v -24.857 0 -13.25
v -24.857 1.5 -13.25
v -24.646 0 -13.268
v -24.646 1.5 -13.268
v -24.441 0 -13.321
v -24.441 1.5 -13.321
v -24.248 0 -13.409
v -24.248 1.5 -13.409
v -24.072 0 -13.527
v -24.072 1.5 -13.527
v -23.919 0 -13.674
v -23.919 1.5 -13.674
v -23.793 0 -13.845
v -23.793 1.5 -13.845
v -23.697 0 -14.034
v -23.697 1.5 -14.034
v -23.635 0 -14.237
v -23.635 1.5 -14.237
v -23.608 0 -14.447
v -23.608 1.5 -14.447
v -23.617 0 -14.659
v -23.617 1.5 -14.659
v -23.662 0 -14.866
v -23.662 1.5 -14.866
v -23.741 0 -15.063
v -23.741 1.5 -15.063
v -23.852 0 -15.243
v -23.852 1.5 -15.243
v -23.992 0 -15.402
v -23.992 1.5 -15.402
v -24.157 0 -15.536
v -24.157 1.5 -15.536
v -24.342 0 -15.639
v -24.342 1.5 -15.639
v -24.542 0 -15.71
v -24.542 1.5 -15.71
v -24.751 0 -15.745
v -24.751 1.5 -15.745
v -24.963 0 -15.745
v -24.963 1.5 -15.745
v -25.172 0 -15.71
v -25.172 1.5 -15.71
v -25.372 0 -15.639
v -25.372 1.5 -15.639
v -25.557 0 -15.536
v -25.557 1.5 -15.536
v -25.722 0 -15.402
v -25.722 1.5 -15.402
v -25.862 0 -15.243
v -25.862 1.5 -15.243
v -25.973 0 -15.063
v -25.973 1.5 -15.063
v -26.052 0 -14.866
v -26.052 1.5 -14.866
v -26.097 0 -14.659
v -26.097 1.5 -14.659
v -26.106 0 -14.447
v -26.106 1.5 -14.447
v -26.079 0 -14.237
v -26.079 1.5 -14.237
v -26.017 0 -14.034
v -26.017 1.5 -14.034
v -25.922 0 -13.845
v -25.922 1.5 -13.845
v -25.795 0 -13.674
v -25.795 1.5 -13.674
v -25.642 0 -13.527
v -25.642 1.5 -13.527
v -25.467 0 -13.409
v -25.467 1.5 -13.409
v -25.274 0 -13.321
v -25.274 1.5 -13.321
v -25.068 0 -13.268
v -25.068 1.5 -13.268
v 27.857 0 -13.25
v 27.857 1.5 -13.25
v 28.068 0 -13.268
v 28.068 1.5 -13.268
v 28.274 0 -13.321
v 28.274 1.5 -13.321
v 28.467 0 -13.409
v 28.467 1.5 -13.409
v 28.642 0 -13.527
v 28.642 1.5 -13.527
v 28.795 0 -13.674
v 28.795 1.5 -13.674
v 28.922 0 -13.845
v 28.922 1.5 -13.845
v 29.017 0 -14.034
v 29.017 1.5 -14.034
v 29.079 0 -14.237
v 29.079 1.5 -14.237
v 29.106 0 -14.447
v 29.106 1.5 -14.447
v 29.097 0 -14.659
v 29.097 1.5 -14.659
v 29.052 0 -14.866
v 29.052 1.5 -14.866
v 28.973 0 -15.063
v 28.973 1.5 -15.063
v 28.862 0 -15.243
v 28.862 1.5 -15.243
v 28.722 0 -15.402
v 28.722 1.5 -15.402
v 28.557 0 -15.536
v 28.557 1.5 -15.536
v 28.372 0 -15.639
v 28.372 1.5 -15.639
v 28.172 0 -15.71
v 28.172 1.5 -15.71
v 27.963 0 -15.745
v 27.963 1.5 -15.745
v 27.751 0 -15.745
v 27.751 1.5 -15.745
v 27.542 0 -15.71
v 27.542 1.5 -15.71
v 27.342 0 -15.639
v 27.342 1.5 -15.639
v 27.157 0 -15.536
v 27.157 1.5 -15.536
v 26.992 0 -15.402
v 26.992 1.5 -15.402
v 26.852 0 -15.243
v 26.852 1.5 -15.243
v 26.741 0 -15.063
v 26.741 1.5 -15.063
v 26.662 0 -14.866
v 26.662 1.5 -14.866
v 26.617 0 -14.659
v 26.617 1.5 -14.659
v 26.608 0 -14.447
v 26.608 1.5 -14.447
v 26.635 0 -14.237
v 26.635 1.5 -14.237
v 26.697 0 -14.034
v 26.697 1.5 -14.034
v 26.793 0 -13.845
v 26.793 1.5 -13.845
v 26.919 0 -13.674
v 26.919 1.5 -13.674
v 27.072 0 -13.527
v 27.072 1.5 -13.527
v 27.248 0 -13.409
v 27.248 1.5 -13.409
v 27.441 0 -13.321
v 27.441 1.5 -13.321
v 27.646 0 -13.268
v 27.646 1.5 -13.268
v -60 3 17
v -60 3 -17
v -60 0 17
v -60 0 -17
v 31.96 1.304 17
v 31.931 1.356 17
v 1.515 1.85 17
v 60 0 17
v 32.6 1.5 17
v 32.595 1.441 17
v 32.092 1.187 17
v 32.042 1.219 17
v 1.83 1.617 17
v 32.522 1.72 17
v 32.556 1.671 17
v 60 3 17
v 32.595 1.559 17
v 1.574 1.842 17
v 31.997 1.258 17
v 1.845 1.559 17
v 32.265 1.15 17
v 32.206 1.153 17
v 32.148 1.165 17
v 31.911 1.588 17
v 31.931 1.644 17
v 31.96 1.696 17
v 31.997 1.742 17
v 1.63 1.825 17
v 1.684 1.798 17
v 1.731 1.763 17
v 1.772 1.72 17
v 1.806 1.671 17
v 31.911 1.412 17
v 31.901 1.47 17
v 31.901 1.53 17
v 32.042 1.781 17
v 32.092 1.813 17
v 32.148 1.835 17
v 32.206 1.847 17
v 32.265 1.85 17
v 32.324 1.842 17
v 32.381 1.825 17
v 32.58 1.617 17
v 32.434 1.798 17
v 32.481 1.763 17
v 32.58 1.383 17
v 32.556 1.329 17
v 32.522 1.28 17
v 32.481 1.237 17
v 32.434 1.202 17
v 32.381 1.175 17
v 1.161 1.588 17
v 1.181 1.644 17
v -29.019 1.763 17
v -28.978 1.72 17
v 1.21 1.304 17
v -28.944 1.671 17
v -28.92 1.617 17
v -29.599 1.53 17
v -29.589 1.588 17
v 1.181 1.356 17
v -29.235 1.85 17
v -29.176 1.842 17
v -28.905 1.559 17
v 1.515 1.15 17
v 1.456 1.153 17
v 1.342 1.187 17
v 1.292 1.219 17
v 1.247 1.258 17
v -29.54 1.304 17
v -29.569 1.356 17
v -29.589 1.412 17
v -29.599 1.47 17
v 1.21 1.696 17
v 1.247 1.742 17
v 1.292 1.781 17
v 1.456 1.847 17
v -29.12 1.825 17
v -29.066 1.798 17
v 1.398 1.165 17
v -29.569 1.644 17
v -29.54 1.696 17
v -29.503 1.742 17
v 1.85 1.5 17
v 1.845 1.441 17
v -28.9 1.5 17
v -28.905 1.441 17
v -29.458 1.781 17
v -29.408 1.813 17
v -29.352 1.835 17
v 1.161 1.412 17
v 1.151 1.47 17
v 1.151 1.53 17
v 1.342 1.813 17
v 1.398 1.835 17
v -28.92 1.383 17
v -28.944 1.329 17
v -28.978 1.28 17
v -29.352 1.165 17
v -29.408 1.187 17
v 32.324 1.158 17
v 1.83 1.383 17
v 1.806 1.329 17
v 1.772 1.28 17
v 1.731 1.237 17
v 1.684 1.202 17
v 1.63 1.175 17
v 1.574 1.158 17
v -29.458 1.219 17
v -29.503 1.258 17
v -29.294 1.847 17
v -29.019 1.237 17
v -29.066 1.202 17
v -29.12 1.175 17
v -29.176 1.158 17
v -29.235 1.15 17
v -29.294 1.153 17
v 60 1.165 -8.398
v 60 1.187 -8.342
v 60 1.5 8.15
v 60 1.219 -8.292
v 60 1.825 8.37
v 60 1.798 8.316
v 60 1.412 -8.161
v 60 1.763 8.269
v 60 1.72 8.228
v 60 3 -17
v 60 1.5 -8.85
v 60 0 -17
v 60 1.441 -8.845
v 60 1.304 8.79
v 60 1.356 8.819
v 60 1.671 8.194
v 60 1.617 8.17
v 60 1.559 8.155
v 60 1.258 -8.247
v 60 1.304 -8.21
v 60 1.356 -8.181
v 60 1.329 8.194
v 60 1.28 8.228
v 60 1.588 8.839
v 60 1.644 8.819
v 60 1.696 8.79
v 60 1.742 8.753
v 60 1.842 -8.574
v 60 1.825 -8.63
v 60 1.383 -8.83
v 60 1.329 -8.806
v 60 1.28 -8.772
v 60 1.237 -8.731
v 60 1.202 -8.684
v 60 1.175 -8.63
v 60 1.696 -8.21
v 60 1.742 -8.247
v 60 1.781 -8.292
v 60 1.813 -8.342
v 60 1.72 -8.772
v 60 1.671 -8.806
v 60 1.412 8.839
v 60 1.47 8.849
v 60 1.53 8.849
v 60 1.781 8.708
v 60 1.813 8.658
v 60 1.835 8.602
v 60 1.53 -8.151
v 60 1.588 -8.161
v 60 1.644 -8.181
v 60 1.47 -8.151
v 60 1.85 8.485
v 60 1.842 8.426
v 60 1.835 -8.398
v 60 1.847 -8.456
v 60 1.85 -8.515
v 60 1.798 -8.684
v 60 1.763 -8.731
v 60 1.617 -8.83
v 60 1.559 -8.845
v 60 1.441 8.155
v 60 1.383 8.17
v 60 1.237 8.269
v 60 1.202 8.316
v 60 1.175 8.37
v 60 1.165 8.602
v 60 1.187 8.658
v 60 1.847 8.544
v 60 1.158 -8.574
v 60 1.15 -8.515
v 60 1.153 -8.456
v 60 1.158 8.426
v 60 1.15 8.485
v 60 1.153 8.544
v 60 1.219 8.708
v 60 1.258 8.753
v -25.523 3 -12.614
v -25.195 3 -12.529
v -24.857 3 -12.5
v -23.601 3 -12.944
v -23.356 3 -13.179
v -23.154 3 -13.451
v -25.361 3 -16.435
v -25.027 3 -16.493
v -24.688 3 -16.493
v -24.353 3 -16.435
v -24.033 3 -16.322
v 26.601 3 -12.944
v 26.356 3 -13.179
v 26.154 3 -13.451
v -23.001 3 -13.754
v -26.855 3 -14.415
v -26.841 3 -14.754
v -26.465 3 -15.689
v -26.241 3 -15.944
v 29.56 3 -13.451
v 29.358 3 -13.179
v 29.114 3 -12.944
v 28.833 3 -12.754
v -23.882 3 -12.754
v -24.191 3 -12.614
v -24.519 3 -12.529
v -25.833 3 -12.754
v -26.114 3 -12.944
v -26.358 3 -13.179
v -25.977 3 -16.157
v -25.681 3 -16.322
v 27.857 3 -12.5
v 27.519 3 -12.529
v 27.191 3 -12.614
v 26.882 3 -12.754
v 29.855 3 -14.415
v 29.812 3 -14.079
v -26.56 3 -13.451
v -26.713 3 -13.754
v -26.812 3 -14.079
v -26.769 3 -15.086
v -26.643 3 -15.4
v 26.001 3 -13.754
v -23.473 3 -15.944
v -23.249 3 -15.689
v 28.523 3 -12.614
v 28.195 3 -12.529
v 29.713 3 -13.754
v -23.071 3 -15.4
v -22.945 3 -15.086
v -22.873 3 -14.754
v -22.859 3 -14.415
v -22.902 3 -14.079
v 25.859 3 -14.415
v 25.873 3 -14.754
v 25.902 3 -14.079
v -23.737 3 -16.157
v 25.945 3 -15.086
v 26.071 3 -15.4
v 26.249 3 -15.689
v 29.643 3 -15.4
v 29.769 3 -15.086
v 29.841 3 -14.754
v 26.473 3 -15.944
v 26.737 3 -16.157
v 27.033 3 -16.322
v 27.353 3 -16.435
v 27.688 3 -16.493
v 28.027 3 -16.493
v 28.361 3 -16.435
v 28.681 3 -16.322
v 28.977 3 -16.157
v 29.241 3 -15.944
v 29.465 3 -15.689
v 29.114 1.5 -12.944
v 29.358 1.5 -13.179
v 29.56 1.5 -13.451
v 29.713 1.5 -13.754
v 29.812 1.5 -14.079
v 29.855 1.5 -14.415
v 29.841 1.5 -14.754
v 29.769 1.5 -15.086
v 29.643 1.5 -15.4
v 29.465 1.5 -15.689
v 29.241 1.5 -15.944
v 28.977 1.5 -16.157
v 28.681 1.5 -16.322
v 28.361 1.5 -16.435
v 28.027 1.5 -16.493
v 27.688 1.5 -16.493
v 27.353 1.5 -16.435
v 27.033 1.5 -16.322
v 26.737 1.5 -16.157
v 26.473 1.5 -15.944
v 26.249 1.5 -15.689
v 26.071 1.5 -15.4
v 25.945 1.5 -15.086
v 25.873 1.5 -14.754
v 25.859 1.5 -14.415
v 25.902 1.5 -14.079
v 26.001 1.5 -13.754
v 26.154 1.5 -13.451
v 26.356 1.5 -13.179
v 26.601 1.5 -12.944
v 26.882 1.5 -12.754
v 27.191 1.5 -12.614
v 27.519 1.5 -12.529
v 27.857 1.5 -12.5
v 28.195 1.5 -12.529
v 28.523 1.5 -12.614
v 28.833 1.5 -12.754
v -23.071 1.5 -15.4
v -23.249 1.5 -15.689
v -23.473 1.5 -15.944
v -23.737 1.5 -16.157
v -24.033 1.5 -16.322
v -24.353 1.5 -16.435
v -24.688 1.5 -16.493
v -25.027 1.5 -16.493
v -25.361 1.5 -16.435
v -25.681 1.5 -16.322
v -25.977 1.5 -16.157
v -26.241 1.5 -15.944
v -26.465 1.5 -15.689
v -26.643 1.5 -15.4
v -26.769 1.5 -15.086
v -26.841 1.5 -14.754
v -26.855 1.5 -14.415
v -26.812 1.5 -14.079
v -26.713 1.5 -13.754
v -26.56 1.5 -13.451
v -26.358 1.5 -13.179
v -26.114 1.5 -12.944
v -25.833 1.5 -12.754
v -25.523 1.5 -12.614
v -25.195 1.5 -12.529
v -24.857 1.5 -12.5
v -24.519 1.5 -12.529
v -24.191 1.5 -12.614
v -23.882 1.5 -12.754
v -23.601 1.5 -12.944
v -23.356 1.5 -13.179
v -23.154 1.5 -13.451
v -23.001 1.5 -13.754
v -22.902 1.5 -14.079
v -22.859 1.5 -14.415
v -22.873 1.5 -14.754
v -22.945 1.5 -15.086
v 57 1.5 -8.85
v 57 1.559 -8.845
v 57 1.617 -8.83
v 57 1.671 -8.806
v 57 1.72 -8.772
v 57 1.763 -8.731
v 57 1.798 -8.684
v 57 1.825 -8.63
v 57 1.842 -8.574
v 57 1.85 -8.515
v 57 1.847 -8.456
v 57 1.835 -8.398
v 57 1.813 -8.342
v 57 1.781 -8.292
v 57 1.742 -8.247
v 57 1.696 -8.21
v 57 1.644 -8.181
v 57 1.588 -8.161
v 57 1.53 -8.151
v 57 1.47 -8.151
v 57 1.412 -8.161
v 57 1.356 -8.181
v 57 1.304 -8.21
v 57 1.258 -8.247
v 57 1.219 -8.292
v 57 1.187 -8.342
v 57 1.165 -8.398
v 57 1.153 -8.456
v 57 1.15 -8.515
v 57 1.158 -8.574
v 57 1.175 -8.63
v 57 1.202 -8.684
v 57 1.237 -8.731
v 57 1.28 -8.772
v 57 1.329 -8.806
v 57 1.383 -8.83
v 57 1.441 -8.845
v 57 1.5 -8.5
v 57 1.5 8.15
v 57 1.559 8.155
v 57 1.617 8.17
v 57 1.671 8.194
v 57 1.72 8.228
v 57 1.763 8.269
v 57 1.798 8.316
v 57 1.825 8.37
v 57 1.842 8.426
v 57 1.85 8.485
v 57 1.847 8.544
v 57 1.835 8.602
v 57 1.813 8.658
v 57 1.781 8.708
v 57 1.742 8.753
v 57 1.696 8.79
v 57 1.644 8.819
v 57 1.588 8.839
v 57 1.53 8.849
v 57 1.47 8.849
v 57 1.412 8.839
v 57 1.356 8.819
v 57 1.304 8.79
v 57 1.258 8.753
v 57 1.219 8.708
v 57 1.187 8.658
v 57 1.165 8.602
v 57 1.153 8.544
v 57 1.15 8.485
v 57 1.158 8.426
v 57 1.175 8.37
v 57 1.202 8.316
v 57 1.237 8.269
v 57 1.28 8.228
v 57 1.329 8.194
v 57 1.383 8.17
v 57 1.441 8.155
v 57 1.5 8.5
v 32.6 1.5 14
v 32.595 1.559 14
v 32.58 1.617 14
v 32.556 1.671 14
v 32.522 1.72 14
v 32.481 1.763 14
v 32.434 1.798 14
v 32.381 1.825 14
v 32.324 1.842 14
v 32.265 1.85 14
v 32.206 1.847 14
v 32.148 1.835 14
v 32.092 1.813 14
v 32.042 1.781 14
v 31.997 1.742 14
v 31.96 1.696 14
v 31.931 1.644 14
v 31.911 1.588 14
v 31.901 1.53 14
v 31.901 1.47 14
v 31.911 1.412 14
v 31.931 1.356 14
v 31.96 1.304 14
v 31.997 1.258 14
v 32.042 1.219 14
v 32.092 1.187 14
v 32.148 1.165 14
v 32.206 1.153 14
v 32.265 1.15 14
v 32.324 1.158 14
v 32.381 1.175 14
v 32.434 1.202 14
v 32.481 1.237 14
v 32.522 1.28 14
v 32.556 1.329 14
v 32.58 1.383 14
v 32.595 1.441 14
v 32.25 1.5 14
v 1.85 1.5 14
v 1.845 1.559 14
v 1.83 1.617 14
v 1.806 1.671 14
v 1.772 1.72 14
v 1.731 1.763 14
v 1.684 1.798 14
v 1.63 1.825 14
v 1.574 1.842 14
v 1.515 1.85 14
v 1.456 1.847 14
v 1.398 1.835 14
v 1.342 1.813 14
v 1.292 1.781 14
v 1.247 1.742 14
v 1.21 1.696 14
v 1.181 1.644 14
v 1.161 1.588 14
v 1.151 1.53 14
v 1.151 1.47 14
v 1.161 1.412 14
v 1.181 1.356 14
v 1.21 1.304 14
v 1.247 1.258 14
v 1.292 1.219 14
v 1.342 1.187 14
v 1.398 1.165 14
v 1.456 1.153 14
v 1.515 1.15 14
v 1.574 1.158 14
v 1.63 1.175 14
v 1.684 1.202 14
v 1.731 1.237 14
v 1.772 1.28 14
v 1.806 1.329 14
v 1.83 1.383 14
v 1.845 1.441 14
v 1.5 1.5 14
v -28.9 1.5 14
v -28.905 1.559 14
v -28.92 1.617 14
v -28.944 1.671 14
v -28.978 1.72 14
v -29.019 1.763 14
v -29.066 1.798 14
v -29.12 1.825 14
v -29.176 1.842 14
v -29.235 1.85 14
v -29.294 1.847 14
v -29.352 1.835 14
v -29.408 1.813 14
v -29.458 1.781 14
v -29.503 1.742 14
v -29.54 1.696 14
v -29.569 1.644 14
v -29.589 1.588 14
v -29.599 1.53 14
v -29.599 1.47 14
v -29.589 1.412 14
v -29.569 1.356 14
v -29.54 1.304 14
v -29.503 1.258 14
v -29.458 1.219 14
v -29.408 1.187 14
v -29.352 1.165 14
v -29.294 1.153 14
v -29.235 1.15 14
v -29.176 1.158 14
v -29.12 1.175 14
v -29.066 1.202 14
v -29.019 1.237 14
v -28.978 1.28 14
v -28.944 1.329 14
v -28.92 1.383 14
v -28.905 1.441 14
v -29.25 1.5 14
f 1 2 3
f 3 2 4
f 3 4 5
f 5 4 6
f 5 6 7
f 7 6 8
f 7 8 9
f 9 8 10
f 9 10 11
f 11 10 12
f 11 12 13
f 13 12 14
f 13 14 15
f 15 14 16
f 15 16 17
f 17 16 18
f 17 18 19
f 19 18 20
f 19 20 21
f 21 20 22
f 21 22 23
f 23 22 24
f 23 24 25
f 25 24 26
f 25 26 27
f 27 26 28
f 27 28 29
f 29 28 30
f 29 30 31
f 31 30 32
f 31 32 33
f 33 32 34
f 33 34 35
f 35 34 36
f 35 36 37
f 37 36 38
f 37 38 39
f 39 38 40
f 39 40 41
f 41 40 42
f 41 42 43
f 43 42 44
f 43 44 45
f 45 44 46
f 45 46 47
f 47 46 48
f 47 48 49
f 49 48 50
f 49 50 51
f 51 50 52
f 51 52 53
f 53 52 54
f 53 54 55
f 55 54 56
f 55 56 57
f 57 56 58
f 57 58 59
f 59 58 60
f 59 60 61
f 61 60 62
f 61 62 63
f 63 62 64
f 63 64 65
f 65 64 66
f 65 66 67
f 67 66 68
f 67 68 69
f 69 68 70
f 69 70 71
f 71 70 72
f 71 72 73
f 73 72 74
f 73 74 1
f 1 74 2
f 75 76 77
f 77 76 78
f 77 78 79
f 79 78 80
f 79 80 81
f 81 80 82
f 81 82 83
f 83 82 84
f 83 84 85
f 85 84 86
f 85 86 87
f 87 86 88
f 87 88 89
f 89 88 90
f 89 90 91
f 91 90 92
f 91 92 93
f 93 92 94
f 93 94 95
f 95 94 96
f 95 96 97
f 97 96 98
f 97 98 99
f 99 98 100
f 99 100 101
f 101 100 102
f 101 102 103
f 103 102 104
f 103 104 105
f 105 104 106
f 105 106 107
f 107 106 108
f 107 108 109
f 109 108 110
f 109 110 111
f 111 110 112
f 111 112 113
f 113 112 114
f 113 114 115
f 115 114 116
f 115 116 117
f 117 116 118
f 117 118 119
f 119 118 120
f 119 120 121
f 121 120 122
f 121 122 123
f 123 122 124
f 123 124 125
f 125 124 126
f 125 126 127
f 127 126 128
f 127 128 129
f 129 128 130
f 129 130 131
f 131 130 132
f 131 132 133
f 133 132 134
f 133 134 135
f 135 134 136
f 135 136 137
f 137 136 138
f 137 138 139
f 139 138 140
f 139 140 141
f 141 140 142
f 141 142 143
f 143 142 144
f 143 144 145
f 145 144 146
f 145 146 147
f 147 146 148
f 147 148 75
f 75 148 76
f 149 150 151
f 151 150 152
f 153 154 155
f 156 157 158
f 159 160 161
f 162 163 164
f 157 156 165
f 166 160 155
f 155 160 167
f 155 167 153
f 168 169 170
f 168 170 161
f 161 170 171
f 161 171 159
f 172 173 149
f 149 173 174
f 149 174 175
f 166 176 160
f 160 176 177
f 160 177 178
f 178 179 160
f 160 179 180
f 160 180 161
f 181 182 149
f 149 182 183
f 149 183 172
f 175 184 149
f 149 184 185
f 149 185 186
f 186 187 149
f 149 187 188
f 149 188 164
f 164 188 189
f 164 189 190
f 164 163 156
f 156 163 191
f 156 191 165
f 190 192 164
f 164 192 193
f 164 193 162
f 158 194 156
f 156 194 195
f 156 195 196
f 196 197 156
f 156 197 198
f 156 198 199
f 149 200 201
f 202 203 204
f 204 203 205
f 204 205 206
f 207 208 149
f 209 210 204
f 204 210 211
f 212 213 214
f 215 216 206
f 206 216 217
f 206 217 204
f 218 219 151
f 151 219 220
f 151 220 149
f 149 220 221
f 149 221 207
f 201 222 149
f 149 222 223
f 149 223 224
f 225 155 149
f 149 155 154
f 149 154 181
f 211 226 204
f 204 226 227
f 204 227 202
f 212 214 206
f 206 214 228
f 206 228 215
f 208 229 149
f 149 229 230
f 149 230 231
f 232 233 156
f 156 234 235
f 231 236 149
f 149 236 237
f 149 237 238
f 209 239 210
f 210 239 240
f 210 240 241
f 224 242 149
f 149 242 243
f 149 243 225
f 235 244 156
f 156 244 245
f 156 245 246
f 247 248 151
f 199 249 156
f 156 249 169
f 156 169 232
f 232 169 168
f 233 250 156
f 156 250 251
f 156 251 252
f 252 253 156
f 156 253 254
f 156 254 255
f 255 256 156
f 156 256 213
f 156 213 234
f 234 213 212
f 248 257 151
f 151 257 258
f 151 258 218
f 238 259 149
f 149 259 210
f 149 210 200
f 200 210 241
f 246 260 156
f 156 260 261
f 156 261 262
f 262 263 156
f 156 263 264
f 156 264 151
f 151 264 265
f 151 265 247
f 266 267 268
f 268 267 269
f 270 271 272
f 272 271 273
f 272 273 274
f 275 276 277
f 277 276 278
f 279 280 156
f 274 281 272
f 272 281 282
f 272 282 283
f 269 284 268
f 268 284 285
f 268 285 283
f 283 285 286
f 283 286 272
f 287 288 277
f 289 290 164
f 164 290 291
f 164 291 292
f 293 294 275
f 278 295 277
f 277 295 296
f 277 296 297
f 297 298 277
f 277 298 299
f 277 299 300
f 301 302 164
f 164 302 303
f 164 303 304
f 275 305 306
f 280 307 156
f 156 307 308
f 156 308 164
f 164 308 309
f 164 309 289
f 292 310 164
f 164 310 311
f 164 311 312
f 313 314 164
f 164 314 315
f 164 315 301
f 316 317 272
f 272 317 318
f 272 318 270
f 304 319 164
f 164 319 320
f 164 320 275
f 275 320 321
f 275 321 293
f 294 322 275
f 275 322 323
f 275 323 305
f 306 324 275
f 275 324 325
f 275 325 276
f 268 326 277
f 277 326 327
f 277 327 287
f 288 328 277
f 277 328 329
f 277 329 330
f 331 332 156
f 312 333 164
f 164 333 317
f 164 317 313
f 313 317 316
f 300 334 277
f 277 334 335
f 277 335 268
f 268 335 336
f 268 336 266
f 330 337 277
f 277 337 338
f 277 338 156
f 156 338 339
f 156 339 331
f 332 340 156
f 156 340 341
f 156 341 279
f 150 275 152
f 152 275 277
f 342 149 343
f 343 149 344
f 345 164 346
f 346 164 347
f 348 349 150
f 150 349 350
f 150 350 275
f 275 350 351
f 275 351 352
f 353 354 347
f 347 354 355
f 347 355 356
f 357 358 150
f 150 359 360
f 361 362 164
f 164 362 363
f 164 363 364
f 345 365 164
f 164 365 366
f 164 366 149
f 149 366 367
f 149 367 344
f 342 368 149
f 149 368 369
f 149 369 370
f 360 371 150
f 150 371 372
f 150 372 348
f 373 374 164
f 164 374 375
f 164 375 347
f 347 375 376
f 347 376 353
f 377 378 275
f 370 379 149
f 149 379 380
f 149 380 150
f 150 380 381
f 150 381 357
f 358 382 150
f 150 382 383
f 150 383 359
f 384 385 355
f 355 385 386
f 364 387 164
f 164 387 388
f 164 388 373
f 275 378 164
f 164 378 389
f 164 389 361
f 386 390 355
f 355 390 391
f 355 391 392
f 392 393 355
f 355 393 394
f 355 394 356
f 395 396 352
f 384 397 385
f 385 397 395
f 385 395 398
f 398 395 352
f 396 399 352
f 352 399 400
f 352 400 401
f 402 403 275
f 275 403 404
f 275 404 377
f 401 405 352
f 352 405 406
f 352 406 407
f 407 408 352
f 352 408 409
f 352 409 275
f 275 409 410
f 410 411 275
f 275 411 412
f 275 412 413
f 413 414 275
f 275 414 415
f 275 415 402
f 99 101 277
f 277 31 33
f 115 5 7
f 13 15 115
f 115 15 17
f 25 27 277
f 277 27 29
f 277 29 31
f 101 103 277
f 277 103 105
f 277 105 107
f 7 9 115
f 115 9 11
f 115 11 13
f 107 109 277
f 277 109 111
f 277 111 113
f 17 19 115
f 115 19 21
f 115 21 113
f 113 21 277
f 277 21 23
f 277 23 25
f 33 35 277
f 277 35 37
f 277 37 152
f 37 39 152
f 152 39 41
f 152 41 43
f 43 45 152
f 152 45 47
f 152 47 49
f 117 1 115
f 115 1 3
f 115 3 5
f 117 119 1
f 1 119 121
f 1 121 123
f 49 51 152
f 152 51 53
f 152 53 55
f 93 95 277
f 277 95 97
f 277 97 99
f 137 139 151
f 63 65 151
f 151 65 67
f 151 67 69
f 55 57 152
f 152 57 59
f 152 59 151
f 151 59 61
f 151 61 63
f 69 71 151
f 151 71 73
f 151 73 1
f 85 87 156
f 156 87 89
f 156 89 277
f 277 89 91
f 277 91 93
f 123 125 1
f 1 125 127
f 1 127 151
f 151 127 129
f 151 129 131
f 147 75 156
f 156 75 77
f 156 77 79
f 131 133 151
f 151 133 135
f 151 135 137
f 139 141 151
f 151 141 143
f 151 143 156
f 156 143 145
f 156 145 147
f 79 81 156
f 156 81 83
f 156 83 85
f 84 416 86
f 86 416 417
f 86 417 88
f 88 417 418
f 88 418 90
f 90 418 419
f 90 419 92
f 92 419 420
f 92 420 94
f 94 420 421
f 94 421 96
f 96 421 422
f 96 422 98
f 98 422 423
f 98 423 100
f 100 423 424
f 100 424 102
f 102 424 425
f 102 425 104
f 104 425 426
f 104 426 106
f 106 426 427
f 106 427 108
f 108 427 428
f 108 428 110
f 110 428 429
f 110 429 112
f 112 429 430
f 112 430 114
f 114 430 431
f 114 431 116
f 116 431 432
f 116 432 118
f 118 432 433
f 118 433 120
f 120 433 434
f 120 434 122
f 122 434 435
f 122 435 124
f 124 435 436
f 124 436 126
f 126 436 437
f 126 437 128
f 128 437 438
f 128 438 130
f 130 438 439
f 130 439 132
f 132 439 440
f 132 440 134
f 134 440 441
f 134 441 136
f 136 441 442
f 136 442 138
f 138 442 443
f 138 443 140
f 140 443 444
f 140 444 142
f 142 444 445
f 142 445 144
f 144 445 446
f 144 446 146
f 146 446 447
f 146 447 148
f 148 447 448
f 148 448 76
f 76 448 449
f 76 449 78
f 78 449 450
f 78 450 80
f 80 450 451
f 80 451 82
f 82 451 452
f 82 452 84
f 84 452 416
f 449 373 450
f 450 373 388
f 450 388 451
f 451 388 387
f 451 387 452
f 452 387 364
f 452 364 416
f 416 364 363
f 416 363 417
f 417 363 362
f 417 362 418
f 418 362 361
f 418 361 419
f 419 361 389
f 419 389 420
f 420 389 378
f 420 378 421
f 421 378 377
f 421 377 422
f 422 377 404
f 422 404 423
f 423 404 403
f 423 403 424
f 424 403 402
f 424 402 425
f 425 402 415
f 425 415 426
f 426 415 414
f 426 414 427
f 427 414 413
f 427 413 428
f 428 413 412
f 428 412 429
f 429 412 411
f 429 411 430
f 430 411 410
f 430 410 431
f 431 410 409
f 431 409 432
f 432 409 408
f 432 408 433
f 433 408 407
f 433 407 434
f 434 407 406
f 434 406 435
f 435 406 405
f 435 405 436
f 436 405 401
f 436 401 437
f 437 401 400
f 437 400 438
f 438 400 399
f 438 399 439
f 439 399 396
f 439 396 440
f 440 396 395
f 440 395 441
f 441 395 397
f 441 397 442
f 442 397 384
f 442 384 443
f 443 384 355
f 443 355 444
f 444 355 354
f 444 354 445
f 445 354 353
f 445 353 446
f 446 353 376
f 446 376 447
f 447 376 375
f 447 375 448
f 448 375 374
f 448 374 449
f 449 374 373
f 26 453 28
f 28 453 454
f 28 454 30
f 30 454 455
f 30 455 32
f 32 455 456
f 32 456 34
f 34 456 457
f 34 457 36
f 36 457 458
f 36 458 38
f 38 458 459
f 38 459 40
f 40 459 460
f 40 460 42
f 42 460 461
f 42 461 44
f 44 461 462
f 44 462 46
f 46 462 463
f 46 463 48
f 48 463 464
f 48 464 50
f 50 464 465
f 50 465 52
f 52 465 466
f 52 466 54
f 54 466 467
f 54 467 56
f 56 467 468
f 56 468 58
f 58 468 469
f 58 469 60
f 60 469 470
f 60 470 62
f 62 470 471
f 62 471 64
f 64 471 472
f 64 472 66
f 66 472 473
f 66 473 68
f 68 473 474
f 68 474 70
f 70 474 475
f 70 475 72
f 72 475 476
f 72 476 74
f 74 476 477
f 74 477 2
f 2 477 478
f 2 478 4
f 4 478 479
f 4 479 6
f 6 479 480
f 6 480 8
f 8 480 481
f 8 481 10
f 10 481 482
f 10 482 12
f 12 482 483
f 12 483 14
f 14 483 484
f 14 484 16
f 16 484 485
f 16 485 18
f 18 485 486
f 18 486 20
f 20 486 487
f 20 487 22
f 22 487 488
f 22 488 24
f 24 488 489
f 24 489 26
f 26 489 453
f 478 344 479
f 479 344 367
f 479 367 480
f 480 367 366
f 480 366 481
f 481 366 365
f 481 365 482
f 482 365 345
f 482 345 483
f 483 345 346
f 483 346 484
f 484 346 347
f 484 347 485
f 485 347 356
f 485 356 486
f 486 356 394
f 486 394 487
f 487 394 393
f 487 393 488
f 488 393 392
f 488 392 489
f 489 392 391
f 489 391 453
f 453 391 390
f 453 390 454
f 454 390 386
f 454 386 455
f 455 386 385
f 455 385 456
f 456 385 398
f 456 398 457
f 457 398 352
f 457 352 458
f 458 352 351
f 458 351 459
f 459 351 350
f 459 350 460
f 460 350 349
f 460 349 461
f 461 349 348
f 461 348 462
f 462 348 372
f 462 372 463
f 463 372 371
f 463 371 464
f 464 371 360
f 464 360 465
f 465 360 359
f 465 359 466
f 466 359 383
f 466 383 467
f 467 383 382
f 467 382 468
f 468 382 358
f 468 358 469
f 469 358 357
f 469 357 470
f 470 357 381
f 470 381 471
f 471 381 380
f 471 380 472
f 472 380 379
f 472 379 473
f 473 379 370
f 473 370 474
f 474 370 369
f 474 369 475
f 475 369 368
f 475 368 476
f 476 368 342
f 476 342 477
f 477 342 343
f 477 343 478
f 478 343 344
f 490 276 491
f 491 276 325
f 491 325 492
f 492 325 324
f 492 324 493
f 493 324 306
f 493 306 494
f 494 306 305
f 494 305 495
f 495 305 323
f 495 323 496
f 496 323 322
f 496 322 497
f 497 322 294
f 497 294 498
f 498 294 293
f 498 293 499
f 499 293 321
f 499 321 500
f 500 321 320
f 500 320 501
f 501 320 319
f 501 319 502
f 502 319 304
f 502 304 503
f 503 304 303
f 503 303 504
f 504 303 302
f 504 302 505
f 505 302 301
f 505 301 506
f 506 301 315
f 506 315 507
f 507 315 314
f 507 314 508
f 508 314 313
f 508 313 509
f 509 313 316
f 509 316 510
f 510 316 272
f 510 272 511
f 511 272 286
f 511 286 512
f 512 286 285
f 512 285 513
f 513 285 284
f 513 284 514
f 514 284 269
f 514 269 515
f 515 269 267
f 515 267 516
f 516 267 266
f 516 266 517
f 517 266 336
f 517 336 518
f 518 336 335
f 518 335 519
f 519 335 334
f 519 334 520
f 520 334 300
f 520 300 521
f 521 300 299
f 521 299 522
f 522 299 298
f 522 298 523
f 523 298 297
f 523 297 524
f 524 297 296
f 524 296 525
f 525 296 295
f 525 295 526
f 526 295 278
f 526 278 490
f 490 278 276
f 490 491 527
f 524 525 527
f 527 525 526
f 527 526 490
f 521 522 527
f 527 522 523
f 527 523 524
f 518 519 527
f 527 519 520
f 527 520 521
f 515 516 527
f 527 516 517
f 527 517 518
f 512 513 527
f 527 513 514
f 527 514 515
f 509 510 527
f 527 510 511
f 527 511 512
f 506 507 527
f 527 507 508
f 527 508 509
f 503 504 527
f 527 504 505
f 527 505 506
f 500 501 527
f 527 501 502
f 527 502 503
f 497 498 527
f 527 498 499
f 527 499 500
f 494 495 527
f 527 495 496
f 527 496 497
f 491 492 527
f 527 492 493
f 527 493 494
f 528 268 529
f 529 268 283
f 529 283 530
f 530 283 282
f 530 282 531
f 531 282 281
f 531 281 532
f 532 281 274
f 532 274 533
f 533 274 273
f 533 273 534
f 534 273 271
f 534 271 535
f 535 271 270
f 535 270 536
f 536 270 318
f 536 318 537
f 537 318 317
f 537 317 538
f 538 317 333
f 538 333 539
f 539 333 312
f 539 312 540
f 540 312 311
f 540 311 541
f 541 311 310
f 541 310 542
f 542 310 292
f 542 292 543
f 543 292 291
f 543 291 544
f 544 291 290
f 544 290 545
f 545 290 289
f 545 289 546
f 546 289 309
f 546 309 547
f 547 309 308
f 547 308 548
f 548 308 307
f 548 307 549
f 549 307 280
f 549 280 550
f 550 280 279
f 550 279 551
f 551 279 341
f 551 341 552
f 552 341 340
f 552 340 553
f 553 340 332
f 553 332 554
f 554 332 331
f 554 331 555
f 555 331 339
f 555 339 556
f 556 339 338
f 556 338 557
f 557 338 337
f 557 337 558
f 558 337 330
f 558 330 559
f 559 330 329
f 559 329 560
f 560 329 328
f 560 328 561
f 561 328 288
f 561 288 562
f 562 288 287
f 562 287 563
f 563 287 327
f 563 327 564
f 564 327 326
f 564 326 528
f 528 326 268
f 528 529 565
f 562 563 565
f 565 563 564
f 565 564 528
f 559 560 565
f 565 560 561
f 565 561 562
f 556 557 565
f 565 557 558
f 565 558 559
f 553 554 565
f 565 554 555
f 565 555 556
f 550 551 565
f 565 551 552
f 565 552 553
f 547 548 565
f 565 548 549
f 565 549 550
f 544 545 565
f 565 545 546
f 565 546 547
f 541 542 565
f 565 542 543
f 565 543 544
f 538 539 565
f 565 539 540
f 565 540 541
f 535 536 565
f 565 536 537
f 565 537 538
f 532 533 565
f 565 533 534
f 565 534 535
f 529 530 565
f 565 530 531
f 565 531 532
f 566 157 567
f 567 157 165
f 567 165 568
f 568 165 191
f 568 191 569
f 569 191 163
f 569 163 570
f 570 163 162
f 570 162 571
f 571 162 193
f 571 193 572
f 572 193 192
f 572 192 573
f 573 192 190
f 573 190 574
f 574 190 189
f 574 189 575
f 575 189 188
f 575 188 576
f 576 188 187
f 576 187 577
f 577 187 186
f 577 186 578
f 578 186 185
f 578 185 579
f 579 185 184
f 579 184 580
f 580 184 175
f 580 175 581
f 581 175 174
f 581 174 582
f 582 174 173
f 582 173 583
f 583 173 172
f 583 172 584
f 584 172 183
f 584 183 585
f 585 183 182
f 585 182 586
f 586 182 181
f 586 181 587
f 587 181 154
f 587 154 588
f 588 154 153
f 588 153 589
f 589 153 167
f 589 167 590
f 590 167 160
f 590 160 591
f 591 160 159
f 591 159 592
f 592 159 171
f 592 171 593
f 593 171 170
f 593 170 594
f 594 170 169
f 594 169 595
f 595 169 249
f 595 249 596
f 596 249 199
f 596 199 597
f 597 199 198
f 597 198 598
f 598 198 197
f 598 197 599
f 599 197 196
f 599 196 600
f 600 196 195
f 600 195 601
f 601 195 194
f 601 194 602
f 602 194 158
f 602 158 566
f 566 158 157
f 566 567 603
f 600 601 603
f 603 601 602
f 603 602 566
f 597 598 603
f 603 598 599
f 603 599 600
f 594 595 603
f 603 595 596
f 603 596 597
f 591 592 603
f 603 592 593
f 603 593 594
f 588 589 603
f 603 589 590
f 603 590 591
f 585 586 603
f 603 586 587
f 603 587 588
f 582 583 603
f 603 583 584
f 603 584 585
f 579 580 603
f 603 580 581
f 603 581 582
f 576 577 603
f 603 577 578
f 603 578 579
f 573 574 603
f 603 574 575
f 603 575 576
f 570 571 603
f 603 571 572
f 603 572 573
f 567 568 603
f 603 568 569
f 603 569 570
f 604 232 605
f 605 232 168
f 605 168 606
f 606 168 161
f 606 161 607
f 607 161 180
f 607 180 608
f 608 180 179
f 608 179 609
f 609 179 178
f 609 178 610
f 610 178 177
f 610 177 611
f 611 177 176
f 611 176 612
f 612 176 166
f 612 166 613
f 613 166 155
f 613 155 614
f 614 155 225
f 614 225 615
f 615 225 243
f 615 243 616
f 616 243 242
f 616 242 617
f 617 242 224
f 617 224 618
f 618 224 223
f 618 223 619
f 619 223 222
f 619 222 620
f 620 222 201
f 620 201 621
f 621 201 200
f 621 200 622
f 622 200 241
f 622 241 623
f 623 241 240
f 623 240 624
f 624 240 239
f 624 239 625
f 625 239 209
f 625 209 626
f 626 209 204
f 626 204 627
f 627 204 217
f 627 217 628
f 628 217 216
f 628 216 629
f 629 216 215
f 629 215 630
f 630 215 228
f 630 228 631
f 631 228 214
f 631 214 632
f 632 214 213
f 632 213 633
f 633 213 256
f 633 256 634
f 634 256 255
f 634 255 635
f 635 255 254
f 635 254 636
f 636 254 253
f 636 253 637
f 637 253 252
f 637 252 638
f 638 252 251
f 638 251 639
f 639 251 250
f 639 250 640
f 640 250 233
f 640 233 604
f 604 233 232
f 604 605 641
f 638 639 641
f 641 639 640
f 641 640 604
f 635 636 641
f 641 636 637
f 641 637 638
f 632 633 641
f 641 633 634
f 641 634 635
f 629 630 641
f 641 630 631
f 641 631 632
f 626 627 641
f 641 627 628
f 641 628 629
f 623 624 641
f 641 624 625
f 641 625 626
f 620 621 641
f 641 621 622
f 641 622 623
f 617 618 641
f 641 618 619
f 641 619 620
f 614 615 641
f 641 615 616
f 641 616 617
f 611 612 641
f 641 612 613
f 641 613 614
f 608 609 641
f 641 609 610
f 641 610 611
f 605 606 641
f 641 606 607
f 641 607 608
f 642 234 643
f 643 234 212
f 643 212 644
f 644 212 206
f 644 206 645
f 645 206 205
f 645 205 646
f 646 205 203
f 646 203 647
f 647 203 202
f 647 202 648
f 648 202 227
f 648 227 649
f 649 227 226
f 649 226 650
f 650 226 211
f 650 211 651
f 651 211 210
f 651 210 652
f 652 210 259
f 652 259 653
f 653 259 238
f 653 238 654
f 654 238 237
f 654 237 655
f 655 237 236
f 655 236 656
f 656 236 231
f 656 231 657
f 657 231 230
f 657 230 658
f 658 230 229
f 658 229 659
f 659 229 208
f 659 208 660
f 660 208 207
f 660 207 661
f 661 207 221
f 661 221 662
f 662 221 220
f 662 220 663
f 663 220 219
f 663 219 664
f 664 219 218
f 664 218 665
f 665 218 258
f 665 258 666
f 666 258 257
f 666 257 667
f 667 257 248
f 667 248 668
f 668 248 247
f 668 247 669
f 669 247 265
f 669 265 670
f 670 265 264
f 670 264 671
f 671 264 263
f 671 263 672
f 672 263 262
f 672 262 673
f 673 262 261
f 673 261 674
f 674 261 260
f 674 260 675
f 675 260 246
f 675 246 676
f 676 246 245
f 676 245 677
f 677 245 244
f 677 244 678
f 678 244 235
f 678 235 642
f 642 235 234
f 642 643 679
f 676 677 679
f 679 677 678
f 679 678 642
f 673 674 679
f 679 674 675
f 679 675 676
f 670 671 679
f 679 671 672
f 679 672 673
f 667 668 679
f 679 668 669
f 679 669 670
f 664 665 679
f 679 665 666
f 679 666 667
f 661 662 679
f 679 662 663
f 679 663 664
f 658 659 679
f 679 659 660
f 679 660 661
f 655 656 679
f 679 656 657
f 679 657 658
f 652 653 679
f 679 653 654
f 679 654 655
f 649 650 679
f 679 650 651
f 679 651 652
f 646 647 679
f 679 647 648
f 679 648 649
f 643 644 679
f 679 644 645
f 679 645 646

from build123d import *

# Parameters (mm, degrees)
SKETCH_1_W          = 120
SKETCH_1_H          = 34
EXTRUDE_1_DEPTH     = 3
SKETCH_2_R          = 1.25
CUT_EXTRUDE_1_DEPTH = 63.433965115
SKETCH_2_3_R        = 2
CUT_EXTRUDE_2_DEPTH = 1.5
SKETCH_3_R          = 0.35
CUT_EXTRUDE_3_DEPTH = 3
SKETCH_4_R          = 0.35
CUT_EXTRUDE_4_DEPTH = 3


with BuildPart() as part:
    # 草图1 → 凸台-拉伸1 (new body)
    with BuildSketch(Plane(origin=(0, 0, 0), x_dir=(1, 0, 0), z_dir=(0, 1, 0))):
        Rectangle(SKETCH_1_W, SKETCH_1_H)
    extrude(amount=EXTRUDE_1_DEPTH)

    # 草图2 → 切除-拉伸1 (cut, through all)
    with BuildSketch(Plane(origin=(0, 3, 0), x_dir=(1, 0, 0), z_dir=(0, 1, 0))):
        with Locations((-24.857141963, 14.500000041)):
            Circle(SKETCH_2_R)
        with Locations((27.857143751, 14.500000041)):
            Circle(SKETCH_2_R)
    extrude(amount=-CUT_EXTRUDE_1_DEPTH, mode=Mode.SUBTRACT)

    # 草图2<3> → 切除-拉伸2 (cut)
    with BuildSketch(Plane(origin=(0, 3, 0), x_dir=(1, 0, 0), z_dir=(0, 1, 0))):
        with Locations((-24.857141963, 14.500000041)):
            Circle(SKETCH_2_3_R)
        with Locations((27.857143751, 14.500000041)):
            Circle(SKETCH_2_3_R)
    extrude(amount=-CUT_EXTRUDE_2_DEPTH, mode=Mode.SUBTRACT)

    # 草图3 → 切除-拉伸3 (cut)
    with BuildSketch(Plane(origin=(60, 0, 0), x_dir=(0, 0, -1), z_dir=(1, 0, 0))):
        with Locations((-8.5, 1.5)):
            Circle(SKETCH_3_R)
        with Locations((8.5, 1.5)):
            Circle(SKETCH_3_R)
    extrude(amount=-CUT_EXTRUDE_3_DEPTH, mode=Mode.SUBTRACT)

    # 草图4 → 切除-拉伸4 (cut)
    with BuildSketch(Plane.XY.offset(17)):
        with Locations((-29.25, 1.5)):
            Circle(SKETCH_4_R)
        with Locations((1.5, 1.5)):
            Circle(SKETCH_4_R)
        with Locations((32.25, 1.5)):
            Circle(SKETCH_4_R)
    extrude(amount=-CUT_EXTRUDE_4_DEPTH, mode=Mode.SUBTRACT)


solid = part.part
